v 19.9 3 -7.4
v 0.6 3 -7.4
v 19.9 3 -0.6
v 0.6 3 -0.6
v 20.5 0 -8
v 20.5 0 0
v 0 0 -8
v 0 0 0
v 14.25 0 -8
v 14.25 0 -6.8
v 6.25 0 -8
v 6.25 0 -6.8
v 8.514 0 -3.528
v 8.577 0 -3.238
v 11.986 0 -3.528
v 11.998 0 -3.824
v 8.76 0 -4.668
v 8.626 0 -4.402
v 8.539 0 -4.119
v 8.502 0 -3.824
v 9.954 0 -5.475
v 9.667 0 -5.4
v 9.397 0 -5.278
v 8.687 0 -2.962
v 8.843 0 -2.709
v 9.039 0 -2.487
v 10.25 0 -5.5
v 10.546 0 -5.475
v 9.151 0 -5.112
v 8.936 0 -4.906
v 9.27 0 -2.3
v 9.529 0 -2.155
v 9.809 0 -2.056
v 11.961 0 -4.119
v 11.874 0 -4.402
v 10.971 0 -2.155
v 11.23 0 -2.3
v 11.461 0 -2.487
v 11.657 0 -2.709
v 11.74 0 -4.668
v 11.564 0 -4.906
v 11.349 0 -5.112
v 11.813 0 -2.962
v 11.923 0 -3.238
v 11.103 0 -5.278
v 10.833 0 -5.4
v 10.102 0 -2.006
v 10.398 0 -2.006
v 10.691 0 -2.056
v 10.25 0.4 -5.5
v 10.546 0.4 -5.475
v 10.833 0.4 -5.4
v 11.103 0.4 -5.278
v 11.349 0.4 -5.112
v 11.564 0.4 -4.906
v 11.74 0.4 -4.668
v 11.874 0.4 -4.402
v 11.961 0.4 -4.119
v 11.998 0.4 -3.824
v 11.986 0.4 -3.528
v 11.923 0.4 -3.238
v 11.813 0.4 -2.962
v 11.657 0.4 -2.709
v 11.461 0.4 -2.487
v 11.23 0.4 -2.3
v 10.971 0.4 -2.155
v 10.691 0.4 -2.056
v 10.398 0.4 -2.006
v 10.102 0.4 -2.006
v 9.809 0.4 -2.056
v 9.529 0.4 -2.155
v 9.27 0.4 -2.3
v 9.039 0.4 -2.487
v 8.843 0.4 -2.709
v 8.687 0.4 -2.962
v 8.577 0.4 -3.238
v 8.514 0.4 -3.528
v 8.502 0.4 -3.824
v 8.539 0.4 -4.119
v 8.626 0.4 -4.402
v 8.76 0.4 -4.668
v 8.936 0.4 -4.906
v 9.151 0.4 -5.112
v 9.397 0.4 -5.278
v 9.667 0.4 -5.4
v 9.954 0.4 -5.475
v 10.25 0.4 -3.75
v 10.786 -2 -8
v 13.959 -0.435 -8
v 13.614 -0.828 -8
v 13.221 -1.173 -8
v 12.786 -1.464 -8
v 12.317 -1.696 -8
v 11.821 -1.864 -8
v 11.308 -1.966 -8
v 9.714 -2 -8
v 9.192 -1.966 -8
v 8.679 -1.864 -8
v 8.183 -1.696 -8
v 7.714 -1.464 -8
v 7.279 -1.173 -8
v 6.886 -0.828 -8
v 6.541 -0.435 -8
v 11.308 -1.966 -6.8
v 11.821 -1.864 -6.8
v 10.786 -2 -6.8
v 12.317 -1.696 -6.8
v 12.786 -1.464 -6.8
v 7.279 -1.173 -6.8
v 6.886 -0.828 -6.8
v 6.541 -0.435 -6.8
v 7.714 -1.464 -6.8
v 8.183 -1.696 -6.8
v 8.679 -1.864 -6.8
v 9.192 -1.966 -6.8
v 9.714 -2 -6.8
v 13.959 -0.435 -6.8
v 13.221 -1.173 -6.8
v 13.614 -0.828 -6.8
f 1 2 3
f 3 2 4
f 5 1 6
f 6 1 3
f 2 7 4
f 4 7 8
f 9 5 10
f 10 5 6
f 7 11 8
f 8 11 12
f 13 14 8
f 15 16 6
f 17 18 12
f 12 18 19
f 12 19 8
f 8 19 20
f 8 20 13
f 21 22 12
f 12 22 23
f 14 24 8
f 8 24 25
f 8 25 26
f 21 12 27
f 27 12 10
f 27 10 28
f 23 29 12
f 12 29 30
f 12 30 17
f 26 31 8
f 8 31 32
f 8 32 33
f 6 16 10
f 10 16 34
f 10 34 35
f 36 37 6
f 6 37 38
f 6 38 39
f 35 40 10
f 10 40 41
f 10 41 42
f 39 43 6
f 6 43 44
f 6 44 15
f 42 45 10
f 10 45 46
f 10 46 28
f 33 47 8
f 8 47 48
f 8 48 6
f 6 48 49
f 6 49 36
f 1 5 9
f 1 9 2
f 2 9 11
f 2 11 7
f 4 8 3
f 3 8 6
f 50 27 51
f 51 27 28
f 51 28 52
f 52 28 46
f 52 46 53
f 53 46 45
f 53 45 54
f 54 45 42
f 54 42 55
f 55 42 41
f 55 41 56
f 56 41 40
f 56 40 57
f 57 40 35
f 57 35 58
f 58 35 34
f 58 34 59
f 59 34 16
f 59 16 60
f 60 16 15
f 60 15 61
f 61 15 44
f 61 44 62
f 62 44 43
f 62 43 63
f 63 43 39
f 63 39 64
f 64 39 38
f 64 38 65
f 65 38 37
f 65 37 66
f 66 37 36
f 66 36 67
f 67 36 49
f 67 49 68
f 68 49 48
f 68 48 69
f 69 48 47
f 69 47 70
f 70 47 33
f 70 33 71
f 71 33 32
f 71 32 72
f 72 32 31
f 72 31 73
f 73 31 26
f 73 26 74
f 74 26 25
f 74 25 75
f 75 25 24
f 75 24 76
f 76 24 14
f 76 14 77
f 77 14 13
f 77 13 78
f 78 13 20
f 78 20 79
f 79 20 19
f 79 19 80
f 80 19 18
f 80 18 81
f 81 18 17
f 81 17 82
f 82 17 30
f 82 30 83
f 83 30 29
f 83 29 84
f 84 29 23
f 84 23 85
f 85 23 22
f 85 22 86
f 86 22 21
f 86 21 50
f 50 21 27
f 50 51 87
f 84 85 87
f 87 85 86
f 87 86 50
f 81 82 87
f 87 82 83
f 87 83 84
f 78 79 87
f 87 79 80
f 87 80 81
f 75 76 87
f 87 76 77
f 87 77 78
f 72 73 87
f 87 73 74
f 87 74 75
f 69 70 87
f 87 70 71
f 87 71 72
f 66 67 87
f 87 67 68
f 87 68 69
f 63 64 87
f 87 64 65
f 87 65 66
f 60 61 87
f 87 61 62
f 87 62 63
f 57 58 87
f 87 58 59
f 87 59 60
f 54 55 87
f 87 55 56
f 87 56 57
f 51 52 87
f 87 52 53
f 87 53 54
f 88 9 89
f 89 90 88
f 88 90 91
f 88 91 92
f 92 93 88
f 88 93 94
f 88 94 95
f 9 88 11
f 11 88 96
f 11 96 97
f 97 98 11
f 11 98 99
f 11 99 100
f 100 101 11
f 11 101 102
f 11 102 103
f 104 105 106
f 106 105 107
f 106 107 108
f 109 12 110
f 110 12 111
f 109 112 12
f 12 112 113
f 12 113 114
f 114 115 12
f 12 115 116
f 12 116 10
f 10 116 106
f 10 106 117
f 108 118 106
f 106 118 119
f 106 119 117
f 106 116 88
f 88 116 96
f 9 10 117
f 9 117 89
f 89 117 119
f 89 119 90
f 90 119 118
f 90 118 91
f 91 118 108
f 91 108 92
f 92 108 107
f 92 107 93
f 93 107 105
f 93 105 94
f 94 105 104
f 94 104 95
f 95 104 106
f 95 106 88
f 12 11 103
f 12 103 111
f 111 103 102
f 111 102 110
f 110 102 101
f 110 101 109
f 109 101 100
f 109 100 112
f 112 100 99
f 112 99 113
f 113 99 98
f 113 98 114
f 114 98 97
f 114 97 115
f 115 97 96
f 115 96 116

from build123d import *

# Parameters (mm, degrees)
SKETCH1_W               = 20.5
SKETCH1_H               = 8
BOSS_EXTRUDE1_DEPTH     = 3
CUT_EXTRUDE1_DEPTH      = 23.209232315
CUT_EXTRUDE1_DEPTH_BACK = 23.209232315
CUT_EXTRUDE2_DEPTH      = 23.209232315
CUT_EXTRUDE2_DEPTH_BACK = 23.209232315
SKETCH4_R               = 1.75
CUT_EXTRUDE3_DEPTH      = 0.4
SKETCH5_W               = 8
SKETCH5_H               = 1.2
BOSS_EXTRUDE2_DEPTH     = 2
FILLET1_R               = 4


with BuildPart() as part:
    # Sketch1 → Boss-Extrude1 (new body)
    with BuildSketch(Plane(origin=(0, 0, 0), x_dir=(1, 0, 0), z_dir=(0, 1, 0))):
        with Locations((10.25, 4)):
            Rectangle(SKETCH1_W, SKETCH1_H)
    extrude(amount=BOSS_EXTRUDE1_DEPTH)

    # Sketch2 → Cut-Extrude1 (cut, two sides: drawn at the far end of the back side and taken through both)
    with BuildSketch(Plane.XY.offset(-CUT_EXTRUDE1_DEPTH_BACK)):
        Polygon((0, 0), (0.6, 3), (0, 3), align=None)
        Polygon((20.5, 0), (19.9, 3), (20.5, 3), align=None)
    extrude(amount=CUT_EXTRUDE1_DEPTH + CUT_EXTRUDE1_DEPTH_BACK, mode=Mode.SUBTRACT)

    # Sketch3 → Cut-Extrude2 (cut, two sides: drawn at the far end of the back side and taken through both)
    with BuildSketch(Plane(origin=(0, 0, 0), x_dir=(0, 0, -1), z_dir=(1, 0, 0)).offset(-CUT_EXTRUDE2_DEPTH_BACK)):
        Polygon((0, 0), (0.6, 3), (0, 3), align=None)
        Polygon((8, 3), (7.4, 3), (8, 0), align=None)
    extrude(amount=CUT_EXTRUDE2_DEPTH + CUT_EXTRUDE2_DEPTH_BACK, mode=Mode.SUBTRACT)

    # Sketch4 → Cut-Extrude3 (cut)
    with BuildSketch(Plane.XZ):
        with Locations(Location((10.25000125, -3.75, 0), (0, 0, 270))):
            Circle(SKETCH4_R)
    extrude(amount=-CUT_EXTRUDE3_DEPTH, mode=Mode.SUBTRACT)

    # Sketch5 → Boss-Extrude2 (add)
    with BuildSketch(Plane.XZ):
        with Locations((10.250011, -7.4)):
            Rectangle(SKETCH5_W, SKETCH5_H)
    extrude(amount=BOSS_EXTRUDE2_DEPTH)

    # Fillet1
    # the kernel refuses this fillet: 4 mm, written as the material it takes off along each edge
    with BuildSketch(Plane(origin=(14.250011, -2, -16.660254038), x_dir=(0, 1, 0), z_dir=(0, 0, 1)), Plane(origin=(6.250011, -2, 1.860254038), x_dir=(0, 1, 0), z_dir=(0, 0, -1))) as fillet1_piece_1:
        with BuildLine():
            CenterArc((4, 3.464101615), FILLET1_R, 180, 60)
            Line((0, 3.464101615), (-0.08, 3.464101615))
            Line((-0.08, 3.464101615), (-0.08, 0))
            Line((-0.08, 0), (0, -0.08))
            ThreePointArc((0, -0.08), (1, -0.08), (1.96, -0.069282032))
            Line((1.96, -0.069282032), (2, 0))
        make_face()
    extrude(amount=18.520508076, mode=Mode.SUBTRACT)


solid = part.part
